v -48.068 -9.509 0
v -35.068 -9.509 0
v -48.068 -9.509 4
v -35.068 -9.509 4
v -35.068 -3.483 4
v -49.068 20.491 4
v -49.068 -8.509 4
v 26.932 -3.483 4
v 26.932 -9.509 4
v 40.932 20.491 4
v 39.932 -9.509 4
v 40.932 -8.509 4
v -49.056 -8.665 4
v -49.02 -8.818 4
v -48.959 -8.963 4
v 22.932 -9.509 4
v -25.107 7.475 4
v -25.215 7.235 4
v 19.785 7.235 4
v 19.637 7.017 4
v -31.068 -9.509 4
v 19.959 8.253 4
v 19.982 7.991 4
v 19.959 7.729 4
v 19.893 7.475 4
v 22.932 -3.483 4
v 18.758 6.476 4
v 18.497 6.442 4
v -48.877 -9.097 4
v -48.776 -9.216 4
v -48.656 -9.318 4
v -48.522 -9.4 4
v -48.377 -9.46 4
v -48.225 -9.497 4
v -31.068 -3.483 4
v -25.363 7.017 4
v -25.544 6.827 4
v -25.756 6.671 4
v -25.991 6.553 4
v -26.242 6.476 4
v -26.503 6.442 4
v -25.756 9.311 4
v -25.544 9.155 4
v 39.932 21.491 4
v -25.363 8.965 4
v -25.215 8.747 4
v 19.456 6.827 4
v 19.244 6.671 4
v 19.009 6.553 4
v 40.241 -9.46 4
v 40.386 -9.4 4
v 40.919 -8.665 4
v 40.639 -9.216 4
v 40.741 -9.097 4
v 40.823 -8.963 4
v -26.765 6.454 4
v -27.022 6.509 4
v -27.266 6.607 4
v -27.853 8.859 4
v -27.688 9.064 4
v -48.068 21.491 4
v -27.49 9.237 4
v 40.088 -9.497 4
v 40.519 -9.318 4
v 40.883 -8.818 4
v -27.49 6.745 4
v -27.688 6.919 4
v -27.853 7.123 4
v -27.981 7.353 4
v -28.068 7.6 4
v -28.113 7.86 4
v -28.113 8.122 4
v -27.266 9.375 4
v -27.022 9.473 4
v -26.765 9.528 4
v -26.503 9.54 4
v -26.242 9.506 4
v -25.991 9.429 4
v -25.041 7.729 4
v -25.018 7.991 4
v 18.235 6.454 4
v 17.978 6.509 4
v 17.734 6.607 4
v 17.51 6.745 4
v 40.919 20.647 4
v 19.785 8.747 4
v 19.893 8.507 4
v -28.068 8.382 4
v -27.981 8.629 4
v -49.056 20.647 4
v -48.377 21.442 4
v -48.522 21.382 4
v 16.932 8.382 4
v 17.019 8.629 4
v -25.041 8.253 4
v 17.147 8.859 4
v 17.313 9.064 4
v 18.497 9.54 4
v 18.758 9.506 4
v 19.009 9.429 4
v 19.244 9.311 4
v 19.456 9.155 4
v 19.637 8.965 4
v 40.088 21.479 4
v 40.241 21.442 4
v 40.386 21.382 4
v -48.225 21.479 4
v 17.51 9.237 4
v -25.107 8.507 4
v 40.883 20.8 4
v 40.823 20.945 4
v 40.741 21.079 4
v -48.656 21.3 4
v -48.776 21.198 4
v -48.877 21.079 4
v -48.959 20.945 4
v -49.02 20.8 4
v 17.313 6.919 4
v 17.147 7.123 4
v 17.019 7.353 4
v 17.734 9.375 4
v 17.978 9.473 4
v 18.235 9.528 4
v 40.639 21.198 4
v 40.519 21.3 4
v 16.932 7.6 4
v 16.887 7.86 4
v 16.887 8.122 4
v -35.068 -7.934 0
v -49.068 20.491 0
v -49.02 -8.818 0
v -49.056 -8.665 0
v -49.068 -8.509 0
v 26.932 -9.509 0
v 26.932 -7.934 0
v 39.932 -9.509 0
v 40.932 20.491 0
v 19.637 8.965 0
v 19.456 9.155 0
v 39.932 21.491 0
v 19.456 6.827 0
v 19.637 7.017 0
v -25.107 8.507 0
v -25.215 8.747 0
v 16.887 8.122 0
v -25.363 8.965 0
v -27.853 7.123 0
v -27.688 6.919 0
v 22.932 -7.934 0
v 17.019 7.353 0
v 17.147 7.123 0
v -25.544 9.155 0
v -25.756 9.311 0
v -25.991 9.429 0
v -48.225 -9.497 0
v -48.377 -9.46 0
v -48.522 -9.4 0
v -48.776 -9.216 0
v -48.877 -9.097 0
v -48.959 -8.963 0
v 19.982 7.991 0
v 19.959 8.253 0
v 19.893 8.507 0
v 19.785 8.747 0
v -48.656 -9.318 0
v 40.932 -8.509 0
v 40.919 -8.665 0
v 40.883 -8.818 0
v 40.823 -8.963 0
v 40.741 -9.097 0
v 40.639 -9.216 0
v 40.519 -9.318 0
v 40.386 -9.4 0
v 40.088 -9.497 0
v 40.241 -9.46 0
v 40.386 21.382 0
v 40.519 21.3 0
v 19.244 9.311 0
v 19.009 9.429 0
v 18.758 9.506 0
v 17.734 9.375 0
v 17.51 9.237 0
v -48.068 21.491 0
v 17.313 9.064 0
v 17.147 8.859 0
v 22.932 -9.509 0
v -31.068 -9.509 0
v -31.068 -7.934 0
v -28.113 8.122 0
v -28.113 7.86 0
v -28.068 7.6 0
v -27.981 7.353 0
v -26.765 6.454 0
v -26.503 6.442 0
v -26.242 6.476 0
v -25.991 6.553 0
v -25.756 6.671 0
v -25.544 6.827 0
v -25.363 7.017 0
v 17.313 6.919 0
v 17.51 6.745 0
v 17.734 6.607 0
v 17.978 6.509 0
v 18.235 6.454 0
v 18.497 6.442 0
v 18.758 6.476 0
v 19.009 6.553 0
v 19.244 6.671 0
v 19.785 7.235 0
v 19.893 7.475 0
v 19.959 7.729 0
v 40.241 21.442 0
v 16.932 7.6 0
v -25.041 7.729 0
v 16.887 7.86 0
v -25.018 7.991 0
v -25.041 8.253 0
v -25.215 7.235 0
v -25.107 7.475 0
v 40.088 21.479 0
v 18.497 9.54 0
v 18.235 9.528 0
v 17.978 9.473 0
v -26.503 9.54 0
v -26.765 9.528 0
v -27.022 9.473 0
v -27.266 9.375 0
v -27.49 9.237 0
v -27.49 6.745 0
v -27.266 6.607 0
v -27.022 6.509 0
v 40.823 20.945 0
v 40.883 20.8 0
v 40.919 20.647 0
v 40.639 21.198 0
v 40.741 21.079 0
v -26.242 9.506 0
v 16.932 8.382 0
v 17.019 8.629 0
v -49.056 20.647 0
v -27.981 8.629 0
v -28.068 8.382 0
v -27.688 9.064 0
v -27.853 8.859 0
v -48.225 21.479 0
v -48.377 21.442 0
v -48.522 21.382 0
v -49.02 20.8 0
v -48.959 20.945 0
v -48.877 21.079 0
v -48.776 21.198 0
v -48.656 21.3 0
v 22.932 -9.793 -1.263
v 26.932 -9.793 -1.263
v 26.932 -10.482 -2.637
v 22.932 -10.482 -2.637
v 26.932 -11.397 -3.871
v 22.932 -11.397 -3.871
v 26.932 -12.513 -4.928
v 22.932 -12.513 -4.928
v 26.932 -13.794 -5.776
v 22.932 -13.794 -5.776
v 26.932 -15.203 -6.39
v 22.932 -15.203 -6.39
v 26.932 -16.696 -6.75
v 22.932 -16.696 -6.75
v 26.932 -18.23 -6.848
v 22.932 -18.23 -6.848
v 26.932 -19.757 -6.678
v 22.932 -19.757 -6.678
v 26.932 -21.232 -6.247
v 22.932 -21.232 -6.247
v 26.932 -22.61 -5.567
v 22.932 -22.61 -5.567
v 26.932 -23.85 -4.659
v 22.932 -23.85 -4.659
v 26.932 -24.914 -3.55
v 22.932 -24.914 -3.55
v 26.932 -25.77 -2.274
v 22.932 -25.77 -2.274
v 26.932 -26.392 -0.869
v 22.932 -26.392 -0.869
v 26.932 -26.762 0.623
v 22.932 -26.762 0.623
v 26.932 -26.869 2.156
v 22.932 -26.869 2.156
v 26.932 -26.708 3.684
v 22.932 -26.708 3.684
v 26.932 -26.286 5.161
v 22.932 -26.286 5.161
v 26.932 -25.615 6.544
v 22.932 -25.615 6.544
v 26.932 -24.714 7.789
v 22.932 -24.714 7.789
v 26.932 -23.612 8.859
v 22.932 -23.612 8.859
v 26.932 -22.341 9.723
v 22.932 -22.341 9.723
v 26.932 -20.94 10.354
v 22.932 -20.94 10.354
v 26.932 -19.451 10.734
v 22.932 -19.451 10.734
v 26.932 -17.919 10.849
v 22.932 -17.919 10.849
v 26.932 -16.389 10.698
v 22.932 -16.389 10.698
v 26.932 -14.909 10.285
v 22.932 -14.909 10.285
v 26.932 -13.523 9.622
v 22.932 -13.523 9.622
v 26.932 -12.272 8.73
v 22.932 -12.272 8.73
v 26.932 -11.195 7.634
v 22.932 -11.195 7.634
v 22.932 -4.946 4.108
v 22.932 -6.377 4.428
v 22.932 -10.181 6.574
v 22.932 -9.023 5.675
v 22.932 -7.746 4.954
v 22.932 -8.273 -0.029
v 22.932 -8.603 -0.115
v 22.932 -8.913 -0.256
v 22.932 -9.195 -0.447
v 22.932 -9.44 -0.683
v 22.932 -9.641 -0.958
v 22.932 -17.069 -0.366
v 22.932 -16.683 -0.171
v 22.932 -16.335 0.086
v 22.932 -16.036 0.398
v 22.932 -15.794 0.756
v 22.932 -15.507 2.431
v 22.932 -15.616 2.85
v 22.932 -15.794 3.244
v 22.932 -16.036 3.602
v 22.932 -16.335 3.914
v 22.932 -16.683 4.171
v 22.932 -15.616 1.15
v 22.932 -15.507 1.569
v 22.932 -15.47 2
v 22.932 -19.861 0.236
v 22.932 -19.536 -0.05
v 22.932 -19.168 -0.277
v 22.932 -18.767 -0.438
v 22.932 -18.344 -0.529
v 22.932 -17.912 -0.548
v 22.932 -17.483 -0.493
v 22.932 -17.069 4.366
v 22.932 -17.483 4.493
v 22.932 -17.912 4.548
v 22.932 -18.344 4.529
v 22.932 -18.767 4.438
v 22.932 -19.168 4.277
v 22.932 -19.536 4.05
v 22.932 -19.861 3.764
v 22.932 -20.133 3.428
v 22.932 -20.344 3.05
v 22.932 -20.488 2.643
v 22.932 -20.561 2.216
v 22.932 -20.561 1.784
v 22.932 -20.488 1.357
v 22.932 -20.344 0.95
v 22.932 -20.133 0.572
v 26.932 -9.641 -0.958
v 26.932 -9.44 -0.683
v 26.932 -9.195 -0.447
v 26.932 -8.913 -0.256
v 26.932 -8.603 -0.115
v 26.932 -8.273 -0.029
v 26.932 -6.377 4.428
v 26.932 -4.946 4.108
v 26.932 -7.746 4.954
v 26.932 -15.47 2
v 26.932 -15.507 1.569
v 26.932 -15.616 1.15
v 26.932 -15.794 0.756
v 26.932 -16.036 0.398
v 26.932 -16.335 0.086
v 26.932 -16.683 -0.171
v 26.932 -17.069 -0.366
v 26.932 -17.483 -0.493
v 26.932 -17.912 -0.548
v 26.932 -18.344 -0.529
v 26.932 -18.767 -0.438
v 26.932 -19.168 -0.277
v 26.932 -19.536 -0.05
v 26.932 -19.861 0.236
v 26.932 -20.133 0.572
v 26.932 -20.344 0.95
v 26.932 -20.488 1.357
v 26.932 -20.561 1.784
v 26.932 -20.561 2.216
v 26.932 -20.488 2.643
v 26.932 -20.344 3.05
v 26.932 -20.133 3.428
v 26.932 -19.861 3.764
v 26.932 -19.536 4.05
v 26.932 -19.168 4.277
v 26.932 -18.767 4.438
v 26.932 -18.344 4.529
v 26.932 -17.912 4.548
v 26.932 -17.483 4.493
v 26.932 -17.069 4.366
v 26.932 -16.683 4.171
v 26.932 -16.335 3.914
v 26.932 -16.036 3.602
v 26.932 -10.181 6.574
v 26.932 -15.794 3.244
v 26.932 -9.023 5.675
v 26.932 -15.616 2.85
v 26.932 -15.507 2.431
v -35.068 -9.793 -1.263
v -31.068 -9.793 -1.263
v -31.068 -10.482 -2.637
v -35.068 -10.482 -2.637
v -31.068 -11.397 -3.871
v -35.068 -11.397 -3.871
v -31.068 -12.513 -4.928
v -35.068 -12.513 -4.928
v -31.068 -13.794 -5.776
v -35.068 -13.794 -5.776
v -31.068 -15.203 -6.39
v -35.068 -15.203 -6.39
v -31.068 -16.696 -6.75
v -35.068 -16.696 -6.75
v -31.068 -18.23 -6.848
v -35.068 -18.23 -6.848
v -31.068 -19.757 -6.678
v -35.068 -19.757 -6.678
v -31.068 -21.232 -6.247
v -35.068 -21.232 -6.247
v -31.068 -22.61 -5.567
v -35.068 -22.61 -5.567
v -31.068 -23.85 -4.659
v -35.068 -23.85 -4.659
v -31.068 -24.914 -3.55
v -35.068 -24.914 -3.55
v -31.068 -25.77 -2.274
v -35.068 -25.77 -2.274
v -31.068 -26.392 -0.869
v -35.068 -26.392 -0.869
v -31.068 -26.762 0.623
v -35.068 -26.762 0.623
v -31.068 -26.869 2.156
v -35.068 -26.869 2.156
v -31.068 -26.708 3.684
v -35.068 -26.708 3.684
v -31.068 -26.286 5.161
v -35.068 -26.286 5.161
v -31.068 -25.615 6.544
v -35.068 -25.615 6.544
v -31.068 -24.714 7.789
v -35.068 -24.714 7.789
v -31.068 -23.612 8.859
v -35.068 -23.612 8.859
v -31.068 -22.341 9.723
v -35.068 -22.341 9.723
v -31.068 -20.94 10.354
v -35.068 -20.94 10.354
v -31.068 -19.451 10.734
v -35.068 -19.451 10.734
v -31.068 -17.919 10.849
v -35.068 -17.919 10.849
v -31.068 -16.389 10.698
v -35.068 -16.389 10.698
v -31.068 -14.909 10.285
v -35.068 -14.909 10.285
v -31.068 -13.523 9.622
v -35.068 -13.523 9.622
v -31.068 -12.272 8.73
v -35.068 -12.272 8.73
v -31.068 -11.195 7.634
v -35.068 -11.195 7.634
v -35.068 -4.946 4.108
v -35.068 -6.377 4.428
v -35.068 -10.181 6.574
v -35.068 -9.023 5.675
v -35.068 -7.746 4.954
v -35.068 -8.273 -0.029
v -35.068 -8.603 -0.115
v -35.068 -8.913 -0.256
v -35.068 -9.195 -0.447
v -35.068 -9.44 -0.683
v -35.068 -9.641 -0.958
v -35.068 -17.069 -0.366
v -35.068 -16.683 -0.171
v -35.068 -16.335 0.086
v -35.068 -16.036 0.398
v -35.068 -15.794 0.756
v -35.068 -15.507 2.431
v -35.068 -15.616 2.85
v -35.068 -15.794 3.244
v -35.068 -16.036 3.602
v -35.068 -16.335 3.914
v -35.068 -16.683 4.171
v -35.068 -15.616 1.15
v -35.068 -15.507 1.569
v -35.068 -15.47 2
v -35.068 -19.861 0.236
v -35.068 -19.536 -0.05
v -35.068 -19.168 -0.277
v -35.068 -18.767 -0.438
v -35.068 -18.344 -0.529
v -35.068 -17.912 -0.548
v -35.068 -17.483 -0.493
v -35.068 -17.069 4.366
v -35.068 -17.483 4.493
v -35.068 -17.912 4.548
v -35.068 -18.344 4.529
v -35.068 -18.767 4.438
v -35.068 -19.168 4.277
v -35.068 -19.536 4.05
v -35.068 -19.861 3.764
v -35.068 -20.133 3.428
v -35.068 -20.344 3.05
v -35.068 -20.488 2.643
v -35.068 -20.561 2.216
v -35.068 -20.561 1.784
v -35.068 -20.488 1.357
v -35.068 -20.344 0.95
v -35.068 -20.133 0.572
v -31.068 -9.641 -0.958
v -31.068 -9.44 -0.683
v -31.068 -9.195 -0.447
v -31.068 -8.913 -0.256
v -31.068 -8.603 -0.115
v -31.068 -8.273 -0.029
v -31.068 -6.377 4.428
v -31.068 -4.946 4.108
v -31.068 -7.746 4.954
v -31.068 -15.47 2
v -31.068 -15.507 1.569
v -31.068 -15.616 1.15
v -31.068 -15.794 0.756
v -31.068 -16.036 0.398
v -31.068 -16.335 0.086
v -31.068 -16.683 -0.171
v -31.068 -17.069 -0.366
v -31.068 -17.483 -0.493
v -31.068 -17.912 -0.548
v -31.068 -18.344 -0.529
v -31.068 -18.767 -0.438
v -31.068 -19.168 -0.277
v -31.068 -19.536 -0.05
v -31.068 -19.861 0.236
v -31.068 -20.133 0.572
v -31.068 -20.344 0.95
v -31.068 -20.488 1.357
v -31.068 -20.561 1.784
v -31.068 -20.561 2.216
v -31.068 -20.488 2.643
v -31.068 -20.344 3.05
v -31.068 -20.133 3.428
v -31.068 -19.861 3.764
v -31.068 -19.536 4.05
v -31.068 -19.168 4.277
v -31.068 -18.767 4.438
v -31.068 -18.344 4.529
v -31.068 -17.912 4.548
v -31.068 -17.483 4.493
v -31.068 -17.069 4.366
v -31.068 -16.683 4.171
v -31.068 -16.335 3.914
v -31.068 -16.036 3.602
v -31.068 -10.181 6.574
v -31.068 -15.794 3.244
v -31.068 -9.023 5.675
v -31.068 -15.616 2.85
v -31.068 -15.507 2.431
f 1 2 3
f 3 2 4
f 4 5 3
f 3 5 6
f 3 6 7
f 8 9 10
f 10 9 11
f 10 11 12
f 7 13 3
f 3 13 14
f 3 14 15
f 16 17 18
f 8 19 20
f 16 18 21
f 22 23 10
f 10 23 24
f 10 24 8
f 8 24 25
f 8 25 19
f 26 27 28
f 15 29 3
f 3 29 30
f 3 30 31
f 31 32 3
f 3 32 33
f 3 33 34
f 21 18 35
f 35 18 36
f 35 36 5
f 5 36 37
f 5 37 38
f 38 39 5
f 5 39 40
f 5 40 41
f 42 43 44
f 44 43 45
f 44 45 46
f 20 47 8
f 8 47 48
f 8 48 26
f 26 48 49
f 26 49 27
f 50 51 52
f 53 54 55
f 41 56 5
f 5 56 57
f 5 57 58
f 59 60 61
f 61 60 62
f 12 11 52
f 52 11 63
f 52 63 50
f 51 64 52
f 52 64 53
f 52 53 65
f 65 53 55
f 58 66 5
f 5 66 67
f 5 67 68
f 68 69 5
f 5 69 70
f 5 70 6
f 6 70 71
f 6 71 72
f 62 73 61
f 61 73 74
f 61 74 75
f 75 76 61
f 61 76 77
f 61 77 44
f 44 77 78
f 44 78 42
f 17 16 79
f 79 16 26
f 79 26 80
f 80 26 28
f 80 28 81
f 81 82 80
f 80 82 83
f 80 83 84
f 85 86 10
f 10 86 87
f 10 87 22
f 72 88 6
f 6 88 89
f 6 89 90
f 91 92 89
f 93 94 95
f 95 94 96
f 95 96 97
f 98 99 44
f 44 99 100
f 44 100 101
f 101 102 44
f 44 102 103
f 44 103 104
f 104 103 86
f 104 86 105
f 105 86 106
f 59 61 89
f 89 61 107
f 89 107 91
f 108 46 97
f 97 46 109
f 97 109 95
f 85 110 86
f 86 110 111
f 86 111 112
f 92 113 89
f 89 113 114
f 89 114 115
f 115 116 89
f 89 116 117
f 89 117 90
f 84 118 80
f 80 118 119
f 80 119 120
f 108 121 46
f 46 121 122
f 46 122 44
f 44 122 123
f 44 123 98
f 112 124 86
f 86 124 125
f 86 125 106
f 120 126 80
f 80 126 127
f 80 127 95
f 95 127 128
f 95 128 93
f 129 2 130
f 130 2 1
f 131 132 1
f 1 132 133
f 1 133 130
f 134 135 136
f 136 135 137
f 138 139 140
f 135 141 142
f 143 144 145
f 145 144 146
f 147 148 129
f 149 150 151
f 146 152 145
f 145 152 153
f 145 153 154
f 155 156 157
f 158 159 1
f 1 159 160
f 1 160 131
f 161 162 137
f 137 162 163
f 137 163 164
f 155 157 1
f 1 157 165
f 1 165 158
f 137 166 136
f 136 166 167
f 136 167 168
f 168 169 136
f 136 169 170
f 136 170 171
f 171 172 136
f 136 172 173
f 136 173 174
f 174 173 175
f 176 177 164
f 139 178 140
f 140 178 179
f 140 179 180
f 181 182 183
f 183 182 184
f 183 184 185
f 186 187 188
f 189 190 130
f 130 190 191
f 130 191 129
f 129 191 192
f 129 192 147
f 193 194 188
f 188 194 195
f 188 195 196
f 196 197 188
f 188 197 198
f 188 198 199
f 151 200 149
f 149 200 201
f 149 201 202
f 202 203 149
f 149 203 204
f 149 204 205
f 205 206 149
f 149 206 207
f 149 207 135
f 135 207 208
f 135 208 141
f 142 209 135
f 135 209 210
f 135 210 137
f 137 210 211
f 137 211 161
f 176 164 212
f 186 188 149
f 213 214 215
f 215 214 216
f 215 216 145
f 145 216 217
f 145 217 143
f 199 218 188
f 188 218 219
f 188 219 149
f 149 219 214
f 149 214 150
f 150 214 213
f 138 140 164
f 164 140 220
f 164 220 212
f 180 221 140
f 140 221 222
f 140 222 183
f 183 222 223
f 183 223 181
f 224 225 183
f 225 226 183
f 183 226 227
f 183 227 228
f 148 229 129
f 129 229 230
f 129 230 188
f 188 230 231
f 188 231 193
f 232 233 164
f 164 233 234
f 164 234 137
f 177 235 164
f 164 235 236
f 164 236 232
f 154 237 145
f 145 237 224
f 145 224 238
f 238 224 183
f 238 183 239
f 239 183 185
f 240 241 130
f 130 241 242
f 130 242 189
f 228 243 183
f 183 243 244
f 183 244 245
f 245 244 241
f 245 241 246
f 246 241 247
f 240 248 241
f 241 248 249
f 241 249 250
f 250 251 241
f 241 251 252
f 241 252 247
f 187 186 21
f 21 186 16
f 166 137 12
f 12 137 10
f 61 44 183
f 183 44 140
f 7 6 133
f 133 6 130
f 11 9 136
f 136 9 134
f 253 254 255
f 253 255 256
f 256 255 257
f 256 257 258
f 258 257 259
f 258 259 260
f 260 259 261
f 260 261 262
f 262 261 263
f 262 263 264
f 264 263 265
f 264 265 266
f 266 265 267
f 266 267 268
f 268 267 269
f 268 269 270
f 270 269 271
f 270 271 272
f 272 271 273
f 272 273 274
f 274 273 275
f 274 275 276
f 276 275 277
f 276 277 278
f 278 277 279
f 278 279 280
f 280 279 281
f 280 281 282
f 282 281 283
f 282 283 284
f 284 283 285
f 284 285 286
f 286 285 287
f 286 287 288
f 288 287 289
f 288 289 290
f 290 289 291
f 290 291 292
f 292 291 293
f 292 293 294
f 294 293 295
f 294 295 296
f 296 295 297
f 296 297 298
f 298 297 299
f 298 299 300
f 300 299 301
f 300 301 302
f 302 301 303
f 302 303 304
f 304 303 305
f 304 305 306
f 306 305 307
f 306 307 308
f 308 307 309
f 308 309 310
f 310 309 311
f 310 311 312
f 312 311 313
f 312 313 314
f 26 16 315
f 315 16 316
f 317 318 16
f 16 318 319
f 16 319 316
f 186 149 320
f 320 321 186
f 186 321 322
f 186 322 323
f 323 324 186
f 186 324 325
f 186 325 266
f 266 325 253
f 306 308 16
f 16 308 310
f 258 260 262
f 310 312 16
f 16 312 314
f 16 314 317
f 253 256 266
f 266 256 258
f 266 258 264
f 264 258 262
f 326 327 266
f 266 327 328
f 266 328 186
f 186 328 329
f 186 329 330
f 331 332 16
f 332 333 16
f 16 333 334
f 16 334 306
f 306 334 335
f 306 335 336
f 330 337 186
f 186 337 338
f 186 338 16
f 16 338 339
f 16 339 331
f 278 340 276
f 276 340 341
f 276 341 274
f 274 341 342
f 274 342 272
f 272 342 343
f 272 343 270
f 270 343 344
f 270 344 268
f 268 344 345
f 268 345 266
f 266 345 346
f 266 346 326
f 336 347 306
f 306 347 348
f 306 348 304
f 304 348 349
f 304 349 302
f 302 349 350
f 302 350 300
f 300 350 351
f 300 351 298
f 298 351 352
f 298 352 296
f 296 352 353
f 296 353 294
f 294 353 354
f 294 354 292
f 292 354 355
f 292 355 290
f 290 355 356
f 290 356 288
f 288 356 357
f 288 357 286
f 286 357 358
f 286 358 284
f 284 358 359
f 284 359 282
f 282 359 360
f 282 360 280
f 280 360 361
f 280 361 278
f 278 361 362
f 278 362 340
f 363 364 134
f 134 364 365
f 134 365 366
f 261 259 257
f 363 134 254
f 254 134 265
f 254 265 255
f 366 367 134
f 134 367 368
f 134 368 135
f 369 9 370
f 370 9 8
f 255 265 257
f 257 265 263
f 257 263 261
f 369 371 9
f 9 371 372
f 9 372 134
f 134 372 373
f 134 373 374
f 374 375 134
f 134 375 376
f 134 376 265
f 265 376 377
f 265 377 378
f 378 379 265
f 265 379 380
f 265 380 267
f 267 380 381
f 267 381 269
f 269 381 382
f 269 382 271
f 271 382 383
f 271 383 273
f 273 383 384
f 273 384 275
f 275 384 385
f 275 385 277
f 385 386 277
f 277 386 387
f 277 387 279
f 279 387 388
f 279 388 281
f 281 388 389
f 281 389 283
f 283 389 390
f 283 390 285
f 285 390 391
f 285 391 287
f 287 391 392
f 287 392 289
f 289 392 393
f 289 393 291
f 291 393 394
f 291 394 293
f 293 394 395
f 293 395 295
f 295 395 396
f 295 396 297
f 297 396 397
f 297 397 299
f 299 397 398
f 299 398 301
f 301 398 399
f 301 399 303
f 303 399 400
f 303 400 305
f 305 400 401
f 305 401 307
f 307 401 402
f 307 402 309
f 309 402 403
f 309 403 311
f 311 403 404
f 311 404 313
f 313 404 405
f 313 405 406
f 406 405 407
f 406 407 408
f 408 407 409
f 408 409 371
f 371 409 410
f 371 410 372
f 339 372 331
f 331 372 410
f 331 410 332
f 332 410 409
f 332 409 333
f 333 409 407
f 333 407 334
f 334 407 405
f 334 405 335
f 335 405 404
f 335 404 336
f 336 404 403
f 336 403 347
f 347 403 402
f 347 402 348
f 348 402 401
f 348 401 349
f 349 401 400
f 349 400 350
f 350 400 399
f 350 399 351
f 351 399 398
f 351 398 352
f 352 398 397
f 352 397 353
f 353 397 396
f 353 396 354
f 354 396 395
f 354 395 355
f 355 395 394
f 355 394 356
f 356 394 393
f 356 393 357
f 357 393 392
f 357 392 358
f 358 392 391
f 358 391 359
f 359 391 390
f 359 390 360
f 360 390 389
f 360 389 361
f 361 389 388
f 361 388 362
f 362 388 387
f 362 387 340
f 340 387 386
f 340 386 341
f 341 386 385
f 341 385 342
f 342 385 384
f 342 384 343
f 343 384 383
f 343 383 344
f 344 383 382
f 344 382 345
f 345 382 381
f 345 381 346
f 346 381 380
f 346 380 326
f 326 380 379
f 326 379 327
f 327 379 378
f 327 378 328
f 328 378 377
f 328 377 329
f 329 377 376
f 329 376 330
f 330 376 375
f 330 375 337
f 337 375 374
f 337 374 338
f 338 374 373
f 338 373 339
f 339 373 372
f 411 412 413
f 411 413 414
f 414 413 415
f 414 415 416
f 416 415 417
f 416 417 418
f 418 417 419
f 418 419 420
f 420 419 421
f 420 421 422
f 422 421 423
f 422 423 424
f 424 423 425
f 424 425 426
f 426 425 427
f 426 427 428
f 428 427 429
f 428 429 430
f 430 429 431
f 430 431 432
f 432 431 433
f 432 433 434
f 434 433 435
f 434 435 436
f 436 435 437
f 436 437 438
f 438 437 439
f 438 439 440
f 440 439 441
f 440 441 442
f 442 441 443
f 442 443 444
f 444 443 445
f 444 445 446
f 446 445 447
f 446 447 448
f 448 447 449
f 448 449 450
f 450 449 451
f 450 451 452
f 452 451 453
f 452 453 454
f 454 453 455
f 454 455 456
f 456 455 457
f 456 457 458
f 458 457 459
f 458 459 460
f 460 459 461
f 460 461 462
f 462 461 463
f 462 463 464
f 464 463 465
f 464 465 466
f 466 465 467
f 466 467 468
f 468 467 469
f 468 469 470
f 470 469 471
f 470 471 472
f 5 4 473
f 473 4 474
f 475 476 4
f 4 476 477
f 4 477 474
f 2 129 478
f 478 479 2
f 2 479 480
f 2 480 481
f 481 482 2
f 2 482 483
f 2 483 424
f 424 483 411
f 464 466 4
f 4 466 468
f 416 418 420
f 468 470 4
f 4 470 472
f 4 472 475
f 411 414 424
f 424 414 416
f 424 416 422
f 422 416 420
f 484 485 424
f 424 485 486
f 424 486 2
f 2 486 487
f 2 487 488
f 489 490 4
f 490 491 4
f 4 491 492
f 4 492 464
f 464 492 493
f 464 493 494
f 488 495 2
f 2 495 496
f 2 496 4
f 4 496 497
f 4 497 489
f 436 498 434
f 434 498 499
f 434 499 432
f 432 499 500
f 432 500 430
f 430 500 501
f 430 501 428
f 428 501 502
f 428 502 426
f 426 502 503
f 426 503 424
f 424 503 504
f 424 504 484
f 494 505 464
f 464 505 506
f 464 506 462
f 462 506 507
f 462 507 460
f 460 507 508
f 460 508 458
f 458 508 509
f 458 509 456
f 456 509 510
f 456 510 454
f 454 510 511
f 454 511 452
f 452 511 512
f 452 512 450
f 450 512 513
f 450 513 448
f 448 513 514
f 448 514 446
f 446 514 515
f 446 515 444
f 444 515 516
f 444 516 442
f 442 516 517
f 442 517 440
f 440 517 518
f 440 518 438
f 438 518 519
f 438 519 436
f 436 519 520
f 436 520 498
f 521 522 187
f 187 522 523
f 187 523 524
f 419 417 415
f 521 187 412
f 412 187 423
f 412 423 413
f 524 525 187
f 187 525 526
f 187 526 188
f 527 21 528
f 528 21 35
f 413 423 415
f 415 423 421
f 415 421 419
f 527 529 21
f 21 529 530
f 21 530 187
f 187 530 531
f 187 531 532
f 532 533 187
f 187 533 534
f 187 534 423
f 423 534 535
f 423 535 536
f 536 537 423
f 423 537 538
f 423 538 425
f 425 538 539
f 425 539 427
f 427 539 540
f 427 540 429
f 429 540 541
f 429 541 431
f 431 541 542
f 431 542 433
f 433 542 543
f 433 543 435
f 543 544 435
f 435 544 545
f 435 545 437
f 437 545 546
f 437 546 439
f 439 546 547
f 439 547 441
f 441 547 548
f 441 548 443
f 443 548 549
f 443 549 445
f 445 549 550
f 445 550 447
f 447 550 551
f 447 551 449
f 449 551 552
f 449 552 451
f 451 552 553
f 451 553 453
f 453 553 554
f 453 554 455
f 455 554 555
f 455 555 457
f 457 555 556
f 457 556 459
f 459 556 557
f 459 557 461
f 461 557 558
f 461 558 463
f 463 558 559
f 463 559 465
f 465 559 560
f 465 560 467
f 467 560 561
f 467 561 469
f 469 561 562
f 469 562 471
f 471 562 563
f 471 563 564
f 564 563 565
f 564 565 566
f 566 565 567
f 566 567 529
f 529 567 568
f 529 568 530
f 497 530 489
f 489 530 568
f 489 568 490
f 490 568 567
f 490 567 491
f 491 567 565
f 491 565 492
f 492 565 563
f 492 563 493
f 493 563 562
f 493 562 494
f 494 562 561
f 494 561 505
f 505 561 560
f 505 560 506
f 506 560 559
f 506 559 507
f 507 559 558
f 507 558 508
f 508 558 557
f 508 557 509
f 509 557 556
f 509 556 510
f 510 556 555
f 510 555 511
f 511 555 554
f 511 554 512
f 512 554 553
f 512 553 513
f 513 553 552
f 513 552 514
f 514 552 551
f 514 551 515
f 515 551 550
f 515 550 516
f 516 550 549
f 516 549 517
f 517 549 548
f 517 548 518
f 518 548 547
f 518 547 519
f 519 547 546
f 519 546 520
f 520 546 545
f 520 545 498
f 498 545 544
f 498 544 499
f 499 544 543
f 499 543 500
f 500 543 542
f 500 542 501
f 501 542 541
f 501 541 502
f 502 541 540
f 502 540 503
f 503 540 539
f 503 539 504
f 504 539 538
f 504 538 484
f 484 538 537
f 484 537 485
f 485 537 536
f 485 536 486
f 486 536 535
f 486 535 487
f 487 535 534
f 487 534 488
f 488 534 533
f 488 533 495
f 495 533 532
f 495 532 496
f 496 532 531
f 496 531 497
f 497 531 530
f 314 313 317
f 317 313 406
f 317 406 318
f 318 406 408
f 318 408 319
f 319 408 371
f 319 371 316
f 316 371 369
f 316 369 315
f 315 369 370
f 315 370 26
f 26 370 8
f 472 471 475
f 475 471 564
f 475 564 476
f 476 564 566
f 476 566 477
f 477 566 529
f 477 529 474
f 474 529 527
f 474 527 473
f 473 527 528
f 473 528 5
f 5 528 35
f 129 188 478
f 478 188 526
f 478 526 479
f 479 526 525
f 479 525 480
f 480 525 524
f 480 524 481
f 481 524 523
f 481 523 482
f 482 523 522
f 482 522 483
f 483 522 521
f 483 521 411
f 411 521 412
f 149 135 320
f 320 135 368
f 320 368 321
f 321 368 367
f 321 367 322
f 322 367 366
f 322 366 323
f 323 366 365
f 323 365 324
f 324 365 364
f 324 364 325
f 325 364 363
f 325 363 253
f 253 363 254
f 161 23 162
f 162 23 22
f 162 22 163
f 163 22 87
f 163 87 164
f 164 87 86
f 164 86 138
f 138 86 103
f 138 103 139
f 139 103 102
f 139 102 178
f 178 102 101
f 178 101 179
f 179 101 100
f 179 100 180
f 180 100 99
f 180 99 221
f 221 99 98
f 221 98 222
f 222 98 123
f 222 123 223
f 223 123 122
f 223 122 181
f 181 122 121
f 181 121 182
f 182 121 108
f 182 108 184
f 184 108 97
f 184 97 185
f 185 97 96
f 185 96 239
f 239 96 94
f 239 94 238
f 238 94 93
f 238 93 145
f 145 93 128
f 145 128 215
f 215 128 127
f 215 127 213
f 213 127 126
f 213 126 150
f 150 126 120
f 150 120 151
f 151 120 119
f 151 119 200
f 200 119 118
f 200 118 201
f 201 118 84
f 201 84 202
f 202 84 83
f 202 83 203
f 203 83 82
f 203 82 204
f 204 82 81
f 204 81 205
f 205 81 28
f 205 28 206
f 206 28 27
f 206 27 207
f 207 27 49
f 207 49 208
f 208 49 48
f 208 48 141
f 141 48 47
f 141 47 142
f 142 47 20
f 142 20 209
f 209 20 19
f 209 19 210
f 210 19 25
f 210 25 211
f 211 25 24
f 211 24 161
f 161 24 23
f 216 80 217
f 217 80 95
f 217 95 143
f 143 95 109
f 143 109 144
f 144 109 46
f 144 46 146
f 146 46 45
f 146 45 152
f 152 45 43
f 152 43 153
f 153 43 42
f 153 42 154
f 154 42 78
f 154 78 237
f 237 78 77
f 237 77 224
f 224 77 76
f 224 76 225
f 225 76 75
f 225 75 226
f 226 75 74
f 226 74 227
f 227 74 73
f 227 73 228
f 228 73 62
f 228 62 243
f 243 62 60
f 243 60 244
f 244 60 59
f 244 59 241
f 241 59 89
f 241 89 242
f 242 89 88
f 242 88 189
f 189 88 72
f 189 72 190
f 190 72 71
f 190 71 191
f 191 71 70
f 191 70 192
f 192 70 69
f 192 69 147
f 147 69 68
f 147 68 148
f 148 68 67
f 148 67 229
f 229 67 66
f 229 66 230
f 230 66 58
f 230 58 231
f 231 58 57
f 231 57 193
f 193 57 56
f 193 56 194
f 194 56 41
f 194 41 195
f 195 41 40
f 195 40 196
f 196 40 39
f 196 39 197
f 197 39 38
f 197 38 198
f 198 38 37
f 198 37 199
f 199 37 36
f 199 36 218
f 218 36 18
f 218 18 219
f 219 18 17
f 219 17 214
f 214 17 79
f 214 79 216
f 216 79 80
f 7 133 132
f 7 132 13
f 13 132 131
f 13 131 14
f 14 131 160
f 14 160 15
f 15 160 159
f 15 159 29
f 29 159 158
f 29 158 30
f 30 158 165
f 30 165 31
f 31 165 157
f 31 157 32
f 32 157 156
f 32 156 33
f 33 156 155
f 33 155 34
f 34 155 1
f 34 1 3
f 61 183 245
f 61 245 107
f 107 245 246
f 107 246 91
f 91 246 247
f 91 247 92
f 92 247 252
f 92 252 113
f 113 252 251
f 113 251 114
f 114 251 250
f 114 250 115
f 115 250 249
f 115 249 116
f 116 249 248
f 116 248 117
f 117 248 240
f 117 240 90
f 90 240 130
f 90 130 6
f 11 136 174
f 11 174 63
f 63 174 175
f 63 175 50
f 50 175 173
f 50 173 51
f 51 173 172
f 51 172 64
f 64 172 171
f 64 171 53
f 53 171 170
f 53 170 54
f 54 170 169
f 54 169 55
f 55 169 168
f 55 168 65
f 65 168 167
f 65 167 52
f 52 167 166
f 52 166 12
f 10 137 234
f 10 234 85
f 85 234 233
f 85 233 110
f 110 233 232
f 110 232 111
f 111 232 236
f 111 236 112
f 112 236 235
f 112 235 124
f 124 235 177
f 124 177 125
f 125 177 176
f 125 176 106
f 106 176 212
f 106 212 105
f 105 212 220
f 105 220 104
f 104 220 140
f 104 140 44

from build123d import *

# Parameters (mm, degrees)
SKIZZE1_W                       = 90
SKIZZE1_H                       = 31
AUFSATZ_LINEAR_AUSTRAGEN1_DEPTH = 4
SKIZZE4_R                       = 8.85
SKIZZE4_R_2                     = 2.55
AUFSATZ_LINEAR_AUSTRAGEN3_DEPTH = 4
LINEARES_MUSTER1_COUNT          = 2
LINEARES_MUSTER1_PITCH          = 58
VERRUNDUNG2_R                   = 10
VERRUNDUNG3_R                   = 2
SKIZZE6_R                       = 1.55
SCHNITT_LINEAR_AUSTRAGEN1_DEPTH = 4
VERRUNDUNG4_R                   = 1


with BuildPart() as part:
    # Skizze1 → Aufsatz-Linear austragen1 (new body)
    with BuildSketch(Plane.XY):
        with Locations((-4.068471812, 5.991025438)):
            Rectangle(SKIZZE1_W, SKIZZE1_H)
    extrude(amount=AUFSATZ_LINEAR_AUSTRAGEN1_DEPTH)

    # Skizze4 → Aufsatz-Linear austragen3 (add)
    with BuildSketch(Plane(origin=(26.931528188, 0, 0), x_dir=(0, 0, -1), z_dir=(1, 0, 0))):
        with Locations((-2, -18.01992615)):
            Circle(SKIZZE4_R)
        with Locations((-2, -18.01992615)):
            Circle(SKIZZE4_R_2, mode=Mode.SUBTRACT)
    aufsatz_linear_austragen3 = extrude(amount=-AUFSATZ_LINEAR_AUSTRAGEN3_DEPTH)

    # Lineares Muster1: Aufsatz-Linear austragen3 ×2
    with Locations(*[(-i * LINEARES_MUSTER1_PITCH, 0, 0) for i in range(1, LINEARES_MUSTER1_COUNT)]):
        add(aufsatz_linear_austragen3)

    # Verrundung2
    verrundung2_edges = [part.edges().sort_by_distance(p)[0] for p in [
        (24.931528188, -9.39887633, 4),
        (-33.068471812, -9.39887633, 4),
    ]]
    fillet(verrundung2_edges, radius=VERRUNDUNG2_R)

    # Verrundung3
    verrundung3_edges = [part.edges().sort_by_distance(p)[0] for p in [
        (24.931528188, -9.39887633, 0),
        (-33.068471812, -9.39887633, 0),
    ]]
    fillet(verrundung3_edges, radius=VERRUNDUNG3_R)

    # Skizze6 → Schnitt-Linear austragen1 (cut)
    with BuildSketch(Plane.XY.offset(4)):
        with Locations((-26.568471812, 7.991025438)):
            Circle(SKIZZE6_R)
        with Locations((18.431528188, 7.991025438)):
            Circle(SKIZZE6_R)
    extrude(amount=-SCHNITT_LINEAR_AUSTRAGEN1_DEPTH, mode=Mode.SUBTRACT)

    # Verrundung4
    verrundung4_edges = [part.edges().sort_by_distance(p)[0] for p in [
        (40.931528188, -9.508974562, 2),
        (-49.068471812, -9.508974562, 2),
        (-49.068471812, 21.491025438, 2),
        (40.931528188, 21.491025438, 2),
    ]]
    fillet(verrundung4_edges, radius=VERRUNDUNG4_R)


solid = part.part
